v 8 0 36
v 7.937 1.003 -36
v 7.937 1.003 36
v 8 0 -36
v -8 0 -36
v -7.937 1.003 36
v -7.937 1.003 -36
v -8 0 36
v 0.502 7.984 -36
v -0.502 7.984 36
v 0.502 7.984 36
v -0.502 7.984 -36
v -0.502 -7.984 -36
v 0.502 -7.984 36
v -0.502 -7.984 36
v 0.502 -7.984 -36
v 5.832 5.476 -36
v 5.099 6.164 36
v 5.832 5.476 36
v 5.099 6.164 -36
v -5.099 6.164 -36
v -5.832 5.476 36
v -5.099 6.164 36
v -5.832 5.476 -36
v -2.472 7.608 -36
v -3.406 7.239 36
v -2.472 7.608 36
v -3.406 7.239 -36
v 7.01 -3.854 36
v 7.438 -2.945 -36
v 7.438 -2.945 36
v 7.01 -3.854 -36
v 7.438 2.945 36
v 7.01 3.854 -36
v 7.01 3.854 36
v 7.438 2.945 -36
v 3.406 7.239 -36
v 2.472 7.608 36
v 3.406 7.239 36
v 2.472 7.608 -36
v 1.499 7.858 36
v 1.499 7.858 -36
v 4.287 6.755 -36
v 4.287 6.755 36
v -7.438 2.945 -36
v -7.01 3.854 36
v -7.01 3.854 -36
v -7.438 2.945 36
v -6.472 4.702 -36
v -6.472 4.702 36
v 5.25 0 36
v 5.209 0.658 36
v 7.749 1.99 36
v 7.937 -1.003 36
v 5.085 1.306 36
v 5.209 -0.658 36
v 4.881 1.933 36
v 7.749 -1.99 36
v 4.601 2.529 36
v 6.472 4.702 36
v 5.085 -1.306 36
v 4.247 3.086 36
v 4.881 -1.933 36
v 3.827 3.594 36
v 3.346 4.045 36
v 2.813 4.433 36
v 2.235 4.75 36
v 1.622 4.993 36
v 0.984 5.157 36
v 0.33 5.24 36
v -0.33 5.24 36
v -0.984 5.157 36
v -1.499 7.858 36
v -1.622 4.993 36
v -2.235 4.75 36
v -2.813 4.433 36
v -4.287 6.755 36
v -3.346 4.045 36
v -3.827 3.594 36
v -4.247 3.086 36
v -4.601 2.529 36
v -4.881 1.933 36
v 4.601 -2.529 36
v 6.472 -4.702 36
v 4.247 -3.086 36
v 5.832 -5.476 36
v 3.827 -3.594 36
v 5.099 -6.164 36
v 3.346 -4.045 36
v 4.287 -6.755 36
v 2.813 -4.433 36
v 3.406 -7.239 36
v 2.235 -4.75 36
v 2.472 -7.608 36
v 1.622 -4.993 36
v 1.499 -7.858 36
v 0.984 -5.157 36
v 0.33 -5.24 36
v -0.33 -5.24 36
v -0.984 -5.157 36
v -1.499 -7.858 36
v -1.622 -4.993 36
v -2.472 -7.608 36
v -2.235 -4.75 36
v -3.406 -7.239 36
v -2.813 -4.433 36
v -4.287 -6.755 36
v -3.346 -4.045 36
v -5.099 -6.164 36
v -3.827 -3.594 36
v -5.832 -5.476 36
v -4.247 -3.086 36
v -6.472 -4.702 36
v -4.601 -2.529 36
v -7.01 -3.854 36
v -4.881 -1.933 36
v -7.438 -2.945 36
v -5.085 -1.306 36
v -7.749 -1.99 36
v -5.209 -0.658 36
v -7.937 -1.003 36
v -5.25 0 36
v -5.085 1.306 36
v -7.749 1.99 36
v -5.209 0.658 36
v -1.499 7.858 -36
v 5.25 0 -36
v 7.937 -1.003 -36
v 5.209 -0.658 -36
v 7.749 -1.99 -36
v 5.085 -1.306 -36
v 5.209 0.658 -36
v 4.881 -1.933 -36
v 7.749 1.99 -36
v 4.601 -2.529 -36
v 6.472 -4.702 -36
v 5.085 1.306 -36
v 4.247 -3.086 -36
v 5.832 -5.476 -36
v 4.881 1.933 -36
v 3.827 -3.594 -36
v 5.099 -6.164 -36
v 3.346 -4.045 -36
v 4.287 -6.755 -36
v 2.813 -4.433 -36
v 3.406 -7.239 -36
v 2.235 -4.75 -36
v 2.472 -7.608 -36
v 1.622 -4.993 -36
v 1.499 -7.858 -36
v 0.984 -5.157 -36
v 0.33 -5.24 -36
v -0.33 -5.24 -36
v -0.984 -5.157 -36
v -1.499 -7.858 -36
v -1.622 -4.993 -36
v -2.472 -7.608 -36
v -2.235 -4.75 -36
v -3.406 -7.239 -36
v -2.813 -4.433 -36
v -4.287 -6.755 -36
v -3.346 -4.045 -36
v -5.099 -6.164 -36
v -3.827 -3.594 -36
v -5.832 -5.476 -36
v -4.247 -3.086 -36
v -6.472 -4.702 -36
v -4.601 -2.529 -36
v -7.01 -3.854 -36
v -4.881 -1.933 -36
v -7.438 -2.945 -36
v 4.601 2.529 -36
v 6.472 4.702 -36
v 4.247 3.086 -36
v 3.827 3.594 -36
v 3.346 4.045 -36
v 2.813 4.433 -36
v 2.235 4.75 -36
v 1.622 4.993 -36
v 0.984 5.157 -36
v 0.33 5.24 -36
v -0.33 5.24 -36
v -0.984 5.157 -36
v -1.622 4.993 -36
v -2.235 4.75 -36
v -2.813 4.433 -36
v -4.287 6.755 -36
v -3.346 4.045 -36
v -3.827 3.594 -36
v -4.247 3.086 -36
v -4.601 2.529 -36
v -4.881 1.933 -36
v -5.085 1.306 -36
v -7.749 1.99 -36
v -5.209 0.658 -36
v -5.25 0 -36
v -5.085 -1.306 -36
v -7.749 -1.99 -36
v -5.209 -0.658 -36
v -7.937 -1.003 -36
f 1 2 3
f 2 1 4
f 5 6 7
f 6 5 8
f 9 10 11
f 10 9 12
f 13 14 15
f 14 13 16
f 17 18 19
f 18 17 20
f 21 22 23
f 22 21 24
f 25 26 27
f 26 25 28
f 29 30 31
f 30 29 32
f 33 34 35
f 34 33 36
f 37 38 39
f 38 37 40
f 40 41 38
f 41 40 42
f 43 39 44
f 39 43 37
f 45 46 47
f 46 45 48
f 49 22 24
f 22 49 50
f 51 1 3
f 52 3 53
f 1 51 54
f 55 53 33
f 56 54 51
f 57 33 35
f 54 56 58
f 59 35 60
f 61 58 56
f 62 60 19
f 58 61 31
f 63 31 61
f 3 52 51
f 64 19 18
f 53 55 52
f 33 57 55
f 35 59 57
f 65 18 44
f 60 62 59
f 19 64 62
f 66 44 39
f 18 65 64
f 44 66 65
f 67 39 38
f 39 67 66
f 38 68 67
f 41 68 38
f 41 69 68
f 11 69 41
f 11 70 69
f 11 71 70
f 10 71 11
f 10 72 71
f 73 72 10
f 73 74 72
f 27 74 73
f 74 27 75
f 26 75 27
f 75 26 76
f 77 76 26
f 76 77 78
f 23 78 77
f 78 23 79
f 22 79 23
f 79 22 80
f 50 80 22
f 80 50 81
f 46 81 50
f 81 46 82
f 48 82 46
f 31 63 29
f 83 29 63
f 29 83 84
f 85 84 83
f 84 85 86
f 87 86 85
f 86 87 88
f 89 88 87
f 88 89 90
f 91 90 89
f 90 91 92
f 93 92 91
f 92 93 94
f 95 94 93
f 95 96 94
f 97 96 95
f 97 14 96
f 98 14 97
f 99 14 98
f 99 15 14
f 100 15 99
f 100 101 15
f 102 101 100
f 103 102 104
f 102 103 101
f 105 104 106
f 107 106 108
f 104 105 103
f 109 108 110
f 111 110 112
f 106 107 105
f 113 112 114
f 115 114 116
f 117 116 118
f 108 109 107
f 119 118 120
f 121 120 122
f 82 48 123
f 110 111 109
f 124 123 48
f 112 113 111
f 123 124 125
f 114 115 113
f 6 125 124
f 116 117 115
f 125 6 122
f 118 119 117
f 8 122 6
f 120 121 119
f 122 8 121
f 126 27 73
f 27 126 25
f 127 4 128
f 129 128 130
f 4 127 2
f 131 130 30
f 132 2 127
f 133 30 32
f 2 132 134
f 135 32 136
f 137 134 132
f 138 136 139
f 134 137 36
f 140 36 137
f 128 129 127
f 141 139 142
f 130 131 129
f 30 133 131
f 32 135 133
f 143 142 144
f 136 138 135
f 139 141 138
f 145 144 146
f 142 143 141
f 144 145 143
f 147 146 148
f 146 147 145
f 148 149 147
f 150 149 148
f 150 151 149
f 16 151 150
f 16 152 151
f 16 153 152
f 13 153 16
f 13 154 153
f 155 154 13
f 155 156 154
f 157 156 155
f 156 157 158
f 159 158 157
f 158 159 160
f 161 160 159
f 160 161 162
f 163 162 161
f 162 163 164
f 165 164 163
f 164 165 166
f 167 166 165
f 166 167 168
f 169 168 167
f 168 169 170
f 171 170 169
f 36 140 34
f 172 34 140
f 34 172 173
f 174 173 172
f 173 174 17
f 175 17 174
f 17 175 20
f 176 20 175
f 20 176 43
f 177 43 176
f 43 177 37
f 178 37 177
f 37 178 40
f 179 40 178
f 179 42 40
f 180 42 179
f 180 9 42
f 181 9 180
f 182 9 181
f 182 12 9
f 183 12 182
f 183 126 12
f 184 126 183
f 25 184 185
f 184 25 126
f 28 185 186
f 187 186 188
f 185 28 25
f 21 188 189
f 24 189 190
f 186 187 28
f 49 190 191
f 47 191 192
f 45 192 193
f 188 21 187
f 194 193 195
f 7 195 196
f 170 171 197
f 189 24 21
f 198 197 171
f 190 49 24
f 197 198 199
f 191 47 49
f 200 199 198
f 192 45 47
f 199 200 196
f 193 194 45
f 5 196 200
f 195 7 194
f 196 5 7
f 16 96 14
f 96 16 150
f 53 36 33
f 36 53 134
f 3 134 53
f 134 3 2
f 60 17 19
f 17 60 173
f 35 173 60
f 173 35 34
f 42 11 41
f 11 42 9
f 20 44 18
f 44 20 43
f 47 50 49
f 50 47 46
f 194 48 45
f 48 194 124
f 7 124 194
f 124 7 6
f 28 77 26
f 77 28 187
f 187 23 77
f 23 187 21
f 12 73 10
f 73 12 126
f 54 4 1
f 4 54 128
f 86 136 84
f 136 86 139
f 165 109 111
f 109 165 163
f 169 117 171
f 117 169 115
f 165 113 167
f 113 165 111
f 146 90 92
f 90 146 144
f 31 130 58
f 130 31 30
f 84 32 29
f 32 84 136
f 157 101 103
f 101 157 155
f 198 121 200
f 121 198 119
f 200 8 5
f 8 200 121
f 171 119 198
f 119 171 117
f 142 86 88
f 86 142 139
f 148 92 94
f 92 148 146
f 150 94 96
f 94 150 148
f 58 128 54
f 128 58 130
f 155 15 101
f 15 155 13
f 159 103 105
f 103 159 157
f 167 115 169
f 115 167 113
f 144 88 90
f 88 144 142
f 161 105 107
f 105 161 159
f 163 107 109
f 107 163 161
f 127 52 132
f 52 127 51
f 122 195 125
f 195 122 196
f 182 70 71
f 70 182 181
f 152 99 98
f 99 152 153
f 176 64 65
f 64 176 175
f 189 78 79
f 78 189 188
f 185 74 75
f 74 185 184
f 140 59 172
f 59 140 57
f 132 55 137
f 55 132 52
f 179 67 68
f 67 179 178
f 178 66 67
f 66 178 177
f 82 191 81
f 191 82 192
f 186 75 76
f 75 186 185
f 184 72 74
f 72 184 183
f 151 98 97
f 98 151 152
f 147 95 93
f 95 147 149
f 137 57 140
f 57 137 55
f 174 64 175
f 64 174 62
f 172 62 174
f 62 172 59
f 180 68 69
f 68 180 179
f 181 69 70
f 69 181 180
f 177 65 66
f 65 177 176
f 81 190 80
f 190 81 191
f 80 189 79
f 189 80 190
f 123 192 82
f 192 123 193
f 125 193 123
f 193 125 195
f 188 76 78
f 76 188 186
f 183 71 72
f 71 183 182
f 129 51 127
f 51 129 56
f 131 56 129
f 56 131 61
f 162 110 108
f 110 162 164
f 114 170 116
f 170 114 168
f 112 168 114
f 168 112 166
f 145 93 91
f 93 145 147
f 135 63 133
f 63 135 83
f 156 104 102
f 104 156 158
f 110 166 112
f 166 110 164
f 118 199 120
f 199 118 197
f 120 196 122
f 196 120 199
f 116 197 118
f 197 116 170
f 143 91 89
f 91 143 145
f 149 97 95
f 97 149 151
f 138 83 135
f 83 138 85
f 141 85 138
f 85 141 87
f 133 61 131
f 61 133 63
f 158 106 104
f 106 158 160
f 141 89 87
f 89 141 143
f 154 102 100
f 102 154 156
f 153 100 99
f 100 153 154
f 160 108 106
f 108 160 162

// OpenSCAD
$fn = 50;


difference() {
	union() {
		translate(v = [0, 0, -36.0000000000]) {
			cylinder(h = 72, r = 8.0000000000);
		}
	}
	union() {
		translate(v = [0, 0, -100.0000000000]) {
			cylinder(h = 200, r = 5.2500000000);
		}
	}
}
